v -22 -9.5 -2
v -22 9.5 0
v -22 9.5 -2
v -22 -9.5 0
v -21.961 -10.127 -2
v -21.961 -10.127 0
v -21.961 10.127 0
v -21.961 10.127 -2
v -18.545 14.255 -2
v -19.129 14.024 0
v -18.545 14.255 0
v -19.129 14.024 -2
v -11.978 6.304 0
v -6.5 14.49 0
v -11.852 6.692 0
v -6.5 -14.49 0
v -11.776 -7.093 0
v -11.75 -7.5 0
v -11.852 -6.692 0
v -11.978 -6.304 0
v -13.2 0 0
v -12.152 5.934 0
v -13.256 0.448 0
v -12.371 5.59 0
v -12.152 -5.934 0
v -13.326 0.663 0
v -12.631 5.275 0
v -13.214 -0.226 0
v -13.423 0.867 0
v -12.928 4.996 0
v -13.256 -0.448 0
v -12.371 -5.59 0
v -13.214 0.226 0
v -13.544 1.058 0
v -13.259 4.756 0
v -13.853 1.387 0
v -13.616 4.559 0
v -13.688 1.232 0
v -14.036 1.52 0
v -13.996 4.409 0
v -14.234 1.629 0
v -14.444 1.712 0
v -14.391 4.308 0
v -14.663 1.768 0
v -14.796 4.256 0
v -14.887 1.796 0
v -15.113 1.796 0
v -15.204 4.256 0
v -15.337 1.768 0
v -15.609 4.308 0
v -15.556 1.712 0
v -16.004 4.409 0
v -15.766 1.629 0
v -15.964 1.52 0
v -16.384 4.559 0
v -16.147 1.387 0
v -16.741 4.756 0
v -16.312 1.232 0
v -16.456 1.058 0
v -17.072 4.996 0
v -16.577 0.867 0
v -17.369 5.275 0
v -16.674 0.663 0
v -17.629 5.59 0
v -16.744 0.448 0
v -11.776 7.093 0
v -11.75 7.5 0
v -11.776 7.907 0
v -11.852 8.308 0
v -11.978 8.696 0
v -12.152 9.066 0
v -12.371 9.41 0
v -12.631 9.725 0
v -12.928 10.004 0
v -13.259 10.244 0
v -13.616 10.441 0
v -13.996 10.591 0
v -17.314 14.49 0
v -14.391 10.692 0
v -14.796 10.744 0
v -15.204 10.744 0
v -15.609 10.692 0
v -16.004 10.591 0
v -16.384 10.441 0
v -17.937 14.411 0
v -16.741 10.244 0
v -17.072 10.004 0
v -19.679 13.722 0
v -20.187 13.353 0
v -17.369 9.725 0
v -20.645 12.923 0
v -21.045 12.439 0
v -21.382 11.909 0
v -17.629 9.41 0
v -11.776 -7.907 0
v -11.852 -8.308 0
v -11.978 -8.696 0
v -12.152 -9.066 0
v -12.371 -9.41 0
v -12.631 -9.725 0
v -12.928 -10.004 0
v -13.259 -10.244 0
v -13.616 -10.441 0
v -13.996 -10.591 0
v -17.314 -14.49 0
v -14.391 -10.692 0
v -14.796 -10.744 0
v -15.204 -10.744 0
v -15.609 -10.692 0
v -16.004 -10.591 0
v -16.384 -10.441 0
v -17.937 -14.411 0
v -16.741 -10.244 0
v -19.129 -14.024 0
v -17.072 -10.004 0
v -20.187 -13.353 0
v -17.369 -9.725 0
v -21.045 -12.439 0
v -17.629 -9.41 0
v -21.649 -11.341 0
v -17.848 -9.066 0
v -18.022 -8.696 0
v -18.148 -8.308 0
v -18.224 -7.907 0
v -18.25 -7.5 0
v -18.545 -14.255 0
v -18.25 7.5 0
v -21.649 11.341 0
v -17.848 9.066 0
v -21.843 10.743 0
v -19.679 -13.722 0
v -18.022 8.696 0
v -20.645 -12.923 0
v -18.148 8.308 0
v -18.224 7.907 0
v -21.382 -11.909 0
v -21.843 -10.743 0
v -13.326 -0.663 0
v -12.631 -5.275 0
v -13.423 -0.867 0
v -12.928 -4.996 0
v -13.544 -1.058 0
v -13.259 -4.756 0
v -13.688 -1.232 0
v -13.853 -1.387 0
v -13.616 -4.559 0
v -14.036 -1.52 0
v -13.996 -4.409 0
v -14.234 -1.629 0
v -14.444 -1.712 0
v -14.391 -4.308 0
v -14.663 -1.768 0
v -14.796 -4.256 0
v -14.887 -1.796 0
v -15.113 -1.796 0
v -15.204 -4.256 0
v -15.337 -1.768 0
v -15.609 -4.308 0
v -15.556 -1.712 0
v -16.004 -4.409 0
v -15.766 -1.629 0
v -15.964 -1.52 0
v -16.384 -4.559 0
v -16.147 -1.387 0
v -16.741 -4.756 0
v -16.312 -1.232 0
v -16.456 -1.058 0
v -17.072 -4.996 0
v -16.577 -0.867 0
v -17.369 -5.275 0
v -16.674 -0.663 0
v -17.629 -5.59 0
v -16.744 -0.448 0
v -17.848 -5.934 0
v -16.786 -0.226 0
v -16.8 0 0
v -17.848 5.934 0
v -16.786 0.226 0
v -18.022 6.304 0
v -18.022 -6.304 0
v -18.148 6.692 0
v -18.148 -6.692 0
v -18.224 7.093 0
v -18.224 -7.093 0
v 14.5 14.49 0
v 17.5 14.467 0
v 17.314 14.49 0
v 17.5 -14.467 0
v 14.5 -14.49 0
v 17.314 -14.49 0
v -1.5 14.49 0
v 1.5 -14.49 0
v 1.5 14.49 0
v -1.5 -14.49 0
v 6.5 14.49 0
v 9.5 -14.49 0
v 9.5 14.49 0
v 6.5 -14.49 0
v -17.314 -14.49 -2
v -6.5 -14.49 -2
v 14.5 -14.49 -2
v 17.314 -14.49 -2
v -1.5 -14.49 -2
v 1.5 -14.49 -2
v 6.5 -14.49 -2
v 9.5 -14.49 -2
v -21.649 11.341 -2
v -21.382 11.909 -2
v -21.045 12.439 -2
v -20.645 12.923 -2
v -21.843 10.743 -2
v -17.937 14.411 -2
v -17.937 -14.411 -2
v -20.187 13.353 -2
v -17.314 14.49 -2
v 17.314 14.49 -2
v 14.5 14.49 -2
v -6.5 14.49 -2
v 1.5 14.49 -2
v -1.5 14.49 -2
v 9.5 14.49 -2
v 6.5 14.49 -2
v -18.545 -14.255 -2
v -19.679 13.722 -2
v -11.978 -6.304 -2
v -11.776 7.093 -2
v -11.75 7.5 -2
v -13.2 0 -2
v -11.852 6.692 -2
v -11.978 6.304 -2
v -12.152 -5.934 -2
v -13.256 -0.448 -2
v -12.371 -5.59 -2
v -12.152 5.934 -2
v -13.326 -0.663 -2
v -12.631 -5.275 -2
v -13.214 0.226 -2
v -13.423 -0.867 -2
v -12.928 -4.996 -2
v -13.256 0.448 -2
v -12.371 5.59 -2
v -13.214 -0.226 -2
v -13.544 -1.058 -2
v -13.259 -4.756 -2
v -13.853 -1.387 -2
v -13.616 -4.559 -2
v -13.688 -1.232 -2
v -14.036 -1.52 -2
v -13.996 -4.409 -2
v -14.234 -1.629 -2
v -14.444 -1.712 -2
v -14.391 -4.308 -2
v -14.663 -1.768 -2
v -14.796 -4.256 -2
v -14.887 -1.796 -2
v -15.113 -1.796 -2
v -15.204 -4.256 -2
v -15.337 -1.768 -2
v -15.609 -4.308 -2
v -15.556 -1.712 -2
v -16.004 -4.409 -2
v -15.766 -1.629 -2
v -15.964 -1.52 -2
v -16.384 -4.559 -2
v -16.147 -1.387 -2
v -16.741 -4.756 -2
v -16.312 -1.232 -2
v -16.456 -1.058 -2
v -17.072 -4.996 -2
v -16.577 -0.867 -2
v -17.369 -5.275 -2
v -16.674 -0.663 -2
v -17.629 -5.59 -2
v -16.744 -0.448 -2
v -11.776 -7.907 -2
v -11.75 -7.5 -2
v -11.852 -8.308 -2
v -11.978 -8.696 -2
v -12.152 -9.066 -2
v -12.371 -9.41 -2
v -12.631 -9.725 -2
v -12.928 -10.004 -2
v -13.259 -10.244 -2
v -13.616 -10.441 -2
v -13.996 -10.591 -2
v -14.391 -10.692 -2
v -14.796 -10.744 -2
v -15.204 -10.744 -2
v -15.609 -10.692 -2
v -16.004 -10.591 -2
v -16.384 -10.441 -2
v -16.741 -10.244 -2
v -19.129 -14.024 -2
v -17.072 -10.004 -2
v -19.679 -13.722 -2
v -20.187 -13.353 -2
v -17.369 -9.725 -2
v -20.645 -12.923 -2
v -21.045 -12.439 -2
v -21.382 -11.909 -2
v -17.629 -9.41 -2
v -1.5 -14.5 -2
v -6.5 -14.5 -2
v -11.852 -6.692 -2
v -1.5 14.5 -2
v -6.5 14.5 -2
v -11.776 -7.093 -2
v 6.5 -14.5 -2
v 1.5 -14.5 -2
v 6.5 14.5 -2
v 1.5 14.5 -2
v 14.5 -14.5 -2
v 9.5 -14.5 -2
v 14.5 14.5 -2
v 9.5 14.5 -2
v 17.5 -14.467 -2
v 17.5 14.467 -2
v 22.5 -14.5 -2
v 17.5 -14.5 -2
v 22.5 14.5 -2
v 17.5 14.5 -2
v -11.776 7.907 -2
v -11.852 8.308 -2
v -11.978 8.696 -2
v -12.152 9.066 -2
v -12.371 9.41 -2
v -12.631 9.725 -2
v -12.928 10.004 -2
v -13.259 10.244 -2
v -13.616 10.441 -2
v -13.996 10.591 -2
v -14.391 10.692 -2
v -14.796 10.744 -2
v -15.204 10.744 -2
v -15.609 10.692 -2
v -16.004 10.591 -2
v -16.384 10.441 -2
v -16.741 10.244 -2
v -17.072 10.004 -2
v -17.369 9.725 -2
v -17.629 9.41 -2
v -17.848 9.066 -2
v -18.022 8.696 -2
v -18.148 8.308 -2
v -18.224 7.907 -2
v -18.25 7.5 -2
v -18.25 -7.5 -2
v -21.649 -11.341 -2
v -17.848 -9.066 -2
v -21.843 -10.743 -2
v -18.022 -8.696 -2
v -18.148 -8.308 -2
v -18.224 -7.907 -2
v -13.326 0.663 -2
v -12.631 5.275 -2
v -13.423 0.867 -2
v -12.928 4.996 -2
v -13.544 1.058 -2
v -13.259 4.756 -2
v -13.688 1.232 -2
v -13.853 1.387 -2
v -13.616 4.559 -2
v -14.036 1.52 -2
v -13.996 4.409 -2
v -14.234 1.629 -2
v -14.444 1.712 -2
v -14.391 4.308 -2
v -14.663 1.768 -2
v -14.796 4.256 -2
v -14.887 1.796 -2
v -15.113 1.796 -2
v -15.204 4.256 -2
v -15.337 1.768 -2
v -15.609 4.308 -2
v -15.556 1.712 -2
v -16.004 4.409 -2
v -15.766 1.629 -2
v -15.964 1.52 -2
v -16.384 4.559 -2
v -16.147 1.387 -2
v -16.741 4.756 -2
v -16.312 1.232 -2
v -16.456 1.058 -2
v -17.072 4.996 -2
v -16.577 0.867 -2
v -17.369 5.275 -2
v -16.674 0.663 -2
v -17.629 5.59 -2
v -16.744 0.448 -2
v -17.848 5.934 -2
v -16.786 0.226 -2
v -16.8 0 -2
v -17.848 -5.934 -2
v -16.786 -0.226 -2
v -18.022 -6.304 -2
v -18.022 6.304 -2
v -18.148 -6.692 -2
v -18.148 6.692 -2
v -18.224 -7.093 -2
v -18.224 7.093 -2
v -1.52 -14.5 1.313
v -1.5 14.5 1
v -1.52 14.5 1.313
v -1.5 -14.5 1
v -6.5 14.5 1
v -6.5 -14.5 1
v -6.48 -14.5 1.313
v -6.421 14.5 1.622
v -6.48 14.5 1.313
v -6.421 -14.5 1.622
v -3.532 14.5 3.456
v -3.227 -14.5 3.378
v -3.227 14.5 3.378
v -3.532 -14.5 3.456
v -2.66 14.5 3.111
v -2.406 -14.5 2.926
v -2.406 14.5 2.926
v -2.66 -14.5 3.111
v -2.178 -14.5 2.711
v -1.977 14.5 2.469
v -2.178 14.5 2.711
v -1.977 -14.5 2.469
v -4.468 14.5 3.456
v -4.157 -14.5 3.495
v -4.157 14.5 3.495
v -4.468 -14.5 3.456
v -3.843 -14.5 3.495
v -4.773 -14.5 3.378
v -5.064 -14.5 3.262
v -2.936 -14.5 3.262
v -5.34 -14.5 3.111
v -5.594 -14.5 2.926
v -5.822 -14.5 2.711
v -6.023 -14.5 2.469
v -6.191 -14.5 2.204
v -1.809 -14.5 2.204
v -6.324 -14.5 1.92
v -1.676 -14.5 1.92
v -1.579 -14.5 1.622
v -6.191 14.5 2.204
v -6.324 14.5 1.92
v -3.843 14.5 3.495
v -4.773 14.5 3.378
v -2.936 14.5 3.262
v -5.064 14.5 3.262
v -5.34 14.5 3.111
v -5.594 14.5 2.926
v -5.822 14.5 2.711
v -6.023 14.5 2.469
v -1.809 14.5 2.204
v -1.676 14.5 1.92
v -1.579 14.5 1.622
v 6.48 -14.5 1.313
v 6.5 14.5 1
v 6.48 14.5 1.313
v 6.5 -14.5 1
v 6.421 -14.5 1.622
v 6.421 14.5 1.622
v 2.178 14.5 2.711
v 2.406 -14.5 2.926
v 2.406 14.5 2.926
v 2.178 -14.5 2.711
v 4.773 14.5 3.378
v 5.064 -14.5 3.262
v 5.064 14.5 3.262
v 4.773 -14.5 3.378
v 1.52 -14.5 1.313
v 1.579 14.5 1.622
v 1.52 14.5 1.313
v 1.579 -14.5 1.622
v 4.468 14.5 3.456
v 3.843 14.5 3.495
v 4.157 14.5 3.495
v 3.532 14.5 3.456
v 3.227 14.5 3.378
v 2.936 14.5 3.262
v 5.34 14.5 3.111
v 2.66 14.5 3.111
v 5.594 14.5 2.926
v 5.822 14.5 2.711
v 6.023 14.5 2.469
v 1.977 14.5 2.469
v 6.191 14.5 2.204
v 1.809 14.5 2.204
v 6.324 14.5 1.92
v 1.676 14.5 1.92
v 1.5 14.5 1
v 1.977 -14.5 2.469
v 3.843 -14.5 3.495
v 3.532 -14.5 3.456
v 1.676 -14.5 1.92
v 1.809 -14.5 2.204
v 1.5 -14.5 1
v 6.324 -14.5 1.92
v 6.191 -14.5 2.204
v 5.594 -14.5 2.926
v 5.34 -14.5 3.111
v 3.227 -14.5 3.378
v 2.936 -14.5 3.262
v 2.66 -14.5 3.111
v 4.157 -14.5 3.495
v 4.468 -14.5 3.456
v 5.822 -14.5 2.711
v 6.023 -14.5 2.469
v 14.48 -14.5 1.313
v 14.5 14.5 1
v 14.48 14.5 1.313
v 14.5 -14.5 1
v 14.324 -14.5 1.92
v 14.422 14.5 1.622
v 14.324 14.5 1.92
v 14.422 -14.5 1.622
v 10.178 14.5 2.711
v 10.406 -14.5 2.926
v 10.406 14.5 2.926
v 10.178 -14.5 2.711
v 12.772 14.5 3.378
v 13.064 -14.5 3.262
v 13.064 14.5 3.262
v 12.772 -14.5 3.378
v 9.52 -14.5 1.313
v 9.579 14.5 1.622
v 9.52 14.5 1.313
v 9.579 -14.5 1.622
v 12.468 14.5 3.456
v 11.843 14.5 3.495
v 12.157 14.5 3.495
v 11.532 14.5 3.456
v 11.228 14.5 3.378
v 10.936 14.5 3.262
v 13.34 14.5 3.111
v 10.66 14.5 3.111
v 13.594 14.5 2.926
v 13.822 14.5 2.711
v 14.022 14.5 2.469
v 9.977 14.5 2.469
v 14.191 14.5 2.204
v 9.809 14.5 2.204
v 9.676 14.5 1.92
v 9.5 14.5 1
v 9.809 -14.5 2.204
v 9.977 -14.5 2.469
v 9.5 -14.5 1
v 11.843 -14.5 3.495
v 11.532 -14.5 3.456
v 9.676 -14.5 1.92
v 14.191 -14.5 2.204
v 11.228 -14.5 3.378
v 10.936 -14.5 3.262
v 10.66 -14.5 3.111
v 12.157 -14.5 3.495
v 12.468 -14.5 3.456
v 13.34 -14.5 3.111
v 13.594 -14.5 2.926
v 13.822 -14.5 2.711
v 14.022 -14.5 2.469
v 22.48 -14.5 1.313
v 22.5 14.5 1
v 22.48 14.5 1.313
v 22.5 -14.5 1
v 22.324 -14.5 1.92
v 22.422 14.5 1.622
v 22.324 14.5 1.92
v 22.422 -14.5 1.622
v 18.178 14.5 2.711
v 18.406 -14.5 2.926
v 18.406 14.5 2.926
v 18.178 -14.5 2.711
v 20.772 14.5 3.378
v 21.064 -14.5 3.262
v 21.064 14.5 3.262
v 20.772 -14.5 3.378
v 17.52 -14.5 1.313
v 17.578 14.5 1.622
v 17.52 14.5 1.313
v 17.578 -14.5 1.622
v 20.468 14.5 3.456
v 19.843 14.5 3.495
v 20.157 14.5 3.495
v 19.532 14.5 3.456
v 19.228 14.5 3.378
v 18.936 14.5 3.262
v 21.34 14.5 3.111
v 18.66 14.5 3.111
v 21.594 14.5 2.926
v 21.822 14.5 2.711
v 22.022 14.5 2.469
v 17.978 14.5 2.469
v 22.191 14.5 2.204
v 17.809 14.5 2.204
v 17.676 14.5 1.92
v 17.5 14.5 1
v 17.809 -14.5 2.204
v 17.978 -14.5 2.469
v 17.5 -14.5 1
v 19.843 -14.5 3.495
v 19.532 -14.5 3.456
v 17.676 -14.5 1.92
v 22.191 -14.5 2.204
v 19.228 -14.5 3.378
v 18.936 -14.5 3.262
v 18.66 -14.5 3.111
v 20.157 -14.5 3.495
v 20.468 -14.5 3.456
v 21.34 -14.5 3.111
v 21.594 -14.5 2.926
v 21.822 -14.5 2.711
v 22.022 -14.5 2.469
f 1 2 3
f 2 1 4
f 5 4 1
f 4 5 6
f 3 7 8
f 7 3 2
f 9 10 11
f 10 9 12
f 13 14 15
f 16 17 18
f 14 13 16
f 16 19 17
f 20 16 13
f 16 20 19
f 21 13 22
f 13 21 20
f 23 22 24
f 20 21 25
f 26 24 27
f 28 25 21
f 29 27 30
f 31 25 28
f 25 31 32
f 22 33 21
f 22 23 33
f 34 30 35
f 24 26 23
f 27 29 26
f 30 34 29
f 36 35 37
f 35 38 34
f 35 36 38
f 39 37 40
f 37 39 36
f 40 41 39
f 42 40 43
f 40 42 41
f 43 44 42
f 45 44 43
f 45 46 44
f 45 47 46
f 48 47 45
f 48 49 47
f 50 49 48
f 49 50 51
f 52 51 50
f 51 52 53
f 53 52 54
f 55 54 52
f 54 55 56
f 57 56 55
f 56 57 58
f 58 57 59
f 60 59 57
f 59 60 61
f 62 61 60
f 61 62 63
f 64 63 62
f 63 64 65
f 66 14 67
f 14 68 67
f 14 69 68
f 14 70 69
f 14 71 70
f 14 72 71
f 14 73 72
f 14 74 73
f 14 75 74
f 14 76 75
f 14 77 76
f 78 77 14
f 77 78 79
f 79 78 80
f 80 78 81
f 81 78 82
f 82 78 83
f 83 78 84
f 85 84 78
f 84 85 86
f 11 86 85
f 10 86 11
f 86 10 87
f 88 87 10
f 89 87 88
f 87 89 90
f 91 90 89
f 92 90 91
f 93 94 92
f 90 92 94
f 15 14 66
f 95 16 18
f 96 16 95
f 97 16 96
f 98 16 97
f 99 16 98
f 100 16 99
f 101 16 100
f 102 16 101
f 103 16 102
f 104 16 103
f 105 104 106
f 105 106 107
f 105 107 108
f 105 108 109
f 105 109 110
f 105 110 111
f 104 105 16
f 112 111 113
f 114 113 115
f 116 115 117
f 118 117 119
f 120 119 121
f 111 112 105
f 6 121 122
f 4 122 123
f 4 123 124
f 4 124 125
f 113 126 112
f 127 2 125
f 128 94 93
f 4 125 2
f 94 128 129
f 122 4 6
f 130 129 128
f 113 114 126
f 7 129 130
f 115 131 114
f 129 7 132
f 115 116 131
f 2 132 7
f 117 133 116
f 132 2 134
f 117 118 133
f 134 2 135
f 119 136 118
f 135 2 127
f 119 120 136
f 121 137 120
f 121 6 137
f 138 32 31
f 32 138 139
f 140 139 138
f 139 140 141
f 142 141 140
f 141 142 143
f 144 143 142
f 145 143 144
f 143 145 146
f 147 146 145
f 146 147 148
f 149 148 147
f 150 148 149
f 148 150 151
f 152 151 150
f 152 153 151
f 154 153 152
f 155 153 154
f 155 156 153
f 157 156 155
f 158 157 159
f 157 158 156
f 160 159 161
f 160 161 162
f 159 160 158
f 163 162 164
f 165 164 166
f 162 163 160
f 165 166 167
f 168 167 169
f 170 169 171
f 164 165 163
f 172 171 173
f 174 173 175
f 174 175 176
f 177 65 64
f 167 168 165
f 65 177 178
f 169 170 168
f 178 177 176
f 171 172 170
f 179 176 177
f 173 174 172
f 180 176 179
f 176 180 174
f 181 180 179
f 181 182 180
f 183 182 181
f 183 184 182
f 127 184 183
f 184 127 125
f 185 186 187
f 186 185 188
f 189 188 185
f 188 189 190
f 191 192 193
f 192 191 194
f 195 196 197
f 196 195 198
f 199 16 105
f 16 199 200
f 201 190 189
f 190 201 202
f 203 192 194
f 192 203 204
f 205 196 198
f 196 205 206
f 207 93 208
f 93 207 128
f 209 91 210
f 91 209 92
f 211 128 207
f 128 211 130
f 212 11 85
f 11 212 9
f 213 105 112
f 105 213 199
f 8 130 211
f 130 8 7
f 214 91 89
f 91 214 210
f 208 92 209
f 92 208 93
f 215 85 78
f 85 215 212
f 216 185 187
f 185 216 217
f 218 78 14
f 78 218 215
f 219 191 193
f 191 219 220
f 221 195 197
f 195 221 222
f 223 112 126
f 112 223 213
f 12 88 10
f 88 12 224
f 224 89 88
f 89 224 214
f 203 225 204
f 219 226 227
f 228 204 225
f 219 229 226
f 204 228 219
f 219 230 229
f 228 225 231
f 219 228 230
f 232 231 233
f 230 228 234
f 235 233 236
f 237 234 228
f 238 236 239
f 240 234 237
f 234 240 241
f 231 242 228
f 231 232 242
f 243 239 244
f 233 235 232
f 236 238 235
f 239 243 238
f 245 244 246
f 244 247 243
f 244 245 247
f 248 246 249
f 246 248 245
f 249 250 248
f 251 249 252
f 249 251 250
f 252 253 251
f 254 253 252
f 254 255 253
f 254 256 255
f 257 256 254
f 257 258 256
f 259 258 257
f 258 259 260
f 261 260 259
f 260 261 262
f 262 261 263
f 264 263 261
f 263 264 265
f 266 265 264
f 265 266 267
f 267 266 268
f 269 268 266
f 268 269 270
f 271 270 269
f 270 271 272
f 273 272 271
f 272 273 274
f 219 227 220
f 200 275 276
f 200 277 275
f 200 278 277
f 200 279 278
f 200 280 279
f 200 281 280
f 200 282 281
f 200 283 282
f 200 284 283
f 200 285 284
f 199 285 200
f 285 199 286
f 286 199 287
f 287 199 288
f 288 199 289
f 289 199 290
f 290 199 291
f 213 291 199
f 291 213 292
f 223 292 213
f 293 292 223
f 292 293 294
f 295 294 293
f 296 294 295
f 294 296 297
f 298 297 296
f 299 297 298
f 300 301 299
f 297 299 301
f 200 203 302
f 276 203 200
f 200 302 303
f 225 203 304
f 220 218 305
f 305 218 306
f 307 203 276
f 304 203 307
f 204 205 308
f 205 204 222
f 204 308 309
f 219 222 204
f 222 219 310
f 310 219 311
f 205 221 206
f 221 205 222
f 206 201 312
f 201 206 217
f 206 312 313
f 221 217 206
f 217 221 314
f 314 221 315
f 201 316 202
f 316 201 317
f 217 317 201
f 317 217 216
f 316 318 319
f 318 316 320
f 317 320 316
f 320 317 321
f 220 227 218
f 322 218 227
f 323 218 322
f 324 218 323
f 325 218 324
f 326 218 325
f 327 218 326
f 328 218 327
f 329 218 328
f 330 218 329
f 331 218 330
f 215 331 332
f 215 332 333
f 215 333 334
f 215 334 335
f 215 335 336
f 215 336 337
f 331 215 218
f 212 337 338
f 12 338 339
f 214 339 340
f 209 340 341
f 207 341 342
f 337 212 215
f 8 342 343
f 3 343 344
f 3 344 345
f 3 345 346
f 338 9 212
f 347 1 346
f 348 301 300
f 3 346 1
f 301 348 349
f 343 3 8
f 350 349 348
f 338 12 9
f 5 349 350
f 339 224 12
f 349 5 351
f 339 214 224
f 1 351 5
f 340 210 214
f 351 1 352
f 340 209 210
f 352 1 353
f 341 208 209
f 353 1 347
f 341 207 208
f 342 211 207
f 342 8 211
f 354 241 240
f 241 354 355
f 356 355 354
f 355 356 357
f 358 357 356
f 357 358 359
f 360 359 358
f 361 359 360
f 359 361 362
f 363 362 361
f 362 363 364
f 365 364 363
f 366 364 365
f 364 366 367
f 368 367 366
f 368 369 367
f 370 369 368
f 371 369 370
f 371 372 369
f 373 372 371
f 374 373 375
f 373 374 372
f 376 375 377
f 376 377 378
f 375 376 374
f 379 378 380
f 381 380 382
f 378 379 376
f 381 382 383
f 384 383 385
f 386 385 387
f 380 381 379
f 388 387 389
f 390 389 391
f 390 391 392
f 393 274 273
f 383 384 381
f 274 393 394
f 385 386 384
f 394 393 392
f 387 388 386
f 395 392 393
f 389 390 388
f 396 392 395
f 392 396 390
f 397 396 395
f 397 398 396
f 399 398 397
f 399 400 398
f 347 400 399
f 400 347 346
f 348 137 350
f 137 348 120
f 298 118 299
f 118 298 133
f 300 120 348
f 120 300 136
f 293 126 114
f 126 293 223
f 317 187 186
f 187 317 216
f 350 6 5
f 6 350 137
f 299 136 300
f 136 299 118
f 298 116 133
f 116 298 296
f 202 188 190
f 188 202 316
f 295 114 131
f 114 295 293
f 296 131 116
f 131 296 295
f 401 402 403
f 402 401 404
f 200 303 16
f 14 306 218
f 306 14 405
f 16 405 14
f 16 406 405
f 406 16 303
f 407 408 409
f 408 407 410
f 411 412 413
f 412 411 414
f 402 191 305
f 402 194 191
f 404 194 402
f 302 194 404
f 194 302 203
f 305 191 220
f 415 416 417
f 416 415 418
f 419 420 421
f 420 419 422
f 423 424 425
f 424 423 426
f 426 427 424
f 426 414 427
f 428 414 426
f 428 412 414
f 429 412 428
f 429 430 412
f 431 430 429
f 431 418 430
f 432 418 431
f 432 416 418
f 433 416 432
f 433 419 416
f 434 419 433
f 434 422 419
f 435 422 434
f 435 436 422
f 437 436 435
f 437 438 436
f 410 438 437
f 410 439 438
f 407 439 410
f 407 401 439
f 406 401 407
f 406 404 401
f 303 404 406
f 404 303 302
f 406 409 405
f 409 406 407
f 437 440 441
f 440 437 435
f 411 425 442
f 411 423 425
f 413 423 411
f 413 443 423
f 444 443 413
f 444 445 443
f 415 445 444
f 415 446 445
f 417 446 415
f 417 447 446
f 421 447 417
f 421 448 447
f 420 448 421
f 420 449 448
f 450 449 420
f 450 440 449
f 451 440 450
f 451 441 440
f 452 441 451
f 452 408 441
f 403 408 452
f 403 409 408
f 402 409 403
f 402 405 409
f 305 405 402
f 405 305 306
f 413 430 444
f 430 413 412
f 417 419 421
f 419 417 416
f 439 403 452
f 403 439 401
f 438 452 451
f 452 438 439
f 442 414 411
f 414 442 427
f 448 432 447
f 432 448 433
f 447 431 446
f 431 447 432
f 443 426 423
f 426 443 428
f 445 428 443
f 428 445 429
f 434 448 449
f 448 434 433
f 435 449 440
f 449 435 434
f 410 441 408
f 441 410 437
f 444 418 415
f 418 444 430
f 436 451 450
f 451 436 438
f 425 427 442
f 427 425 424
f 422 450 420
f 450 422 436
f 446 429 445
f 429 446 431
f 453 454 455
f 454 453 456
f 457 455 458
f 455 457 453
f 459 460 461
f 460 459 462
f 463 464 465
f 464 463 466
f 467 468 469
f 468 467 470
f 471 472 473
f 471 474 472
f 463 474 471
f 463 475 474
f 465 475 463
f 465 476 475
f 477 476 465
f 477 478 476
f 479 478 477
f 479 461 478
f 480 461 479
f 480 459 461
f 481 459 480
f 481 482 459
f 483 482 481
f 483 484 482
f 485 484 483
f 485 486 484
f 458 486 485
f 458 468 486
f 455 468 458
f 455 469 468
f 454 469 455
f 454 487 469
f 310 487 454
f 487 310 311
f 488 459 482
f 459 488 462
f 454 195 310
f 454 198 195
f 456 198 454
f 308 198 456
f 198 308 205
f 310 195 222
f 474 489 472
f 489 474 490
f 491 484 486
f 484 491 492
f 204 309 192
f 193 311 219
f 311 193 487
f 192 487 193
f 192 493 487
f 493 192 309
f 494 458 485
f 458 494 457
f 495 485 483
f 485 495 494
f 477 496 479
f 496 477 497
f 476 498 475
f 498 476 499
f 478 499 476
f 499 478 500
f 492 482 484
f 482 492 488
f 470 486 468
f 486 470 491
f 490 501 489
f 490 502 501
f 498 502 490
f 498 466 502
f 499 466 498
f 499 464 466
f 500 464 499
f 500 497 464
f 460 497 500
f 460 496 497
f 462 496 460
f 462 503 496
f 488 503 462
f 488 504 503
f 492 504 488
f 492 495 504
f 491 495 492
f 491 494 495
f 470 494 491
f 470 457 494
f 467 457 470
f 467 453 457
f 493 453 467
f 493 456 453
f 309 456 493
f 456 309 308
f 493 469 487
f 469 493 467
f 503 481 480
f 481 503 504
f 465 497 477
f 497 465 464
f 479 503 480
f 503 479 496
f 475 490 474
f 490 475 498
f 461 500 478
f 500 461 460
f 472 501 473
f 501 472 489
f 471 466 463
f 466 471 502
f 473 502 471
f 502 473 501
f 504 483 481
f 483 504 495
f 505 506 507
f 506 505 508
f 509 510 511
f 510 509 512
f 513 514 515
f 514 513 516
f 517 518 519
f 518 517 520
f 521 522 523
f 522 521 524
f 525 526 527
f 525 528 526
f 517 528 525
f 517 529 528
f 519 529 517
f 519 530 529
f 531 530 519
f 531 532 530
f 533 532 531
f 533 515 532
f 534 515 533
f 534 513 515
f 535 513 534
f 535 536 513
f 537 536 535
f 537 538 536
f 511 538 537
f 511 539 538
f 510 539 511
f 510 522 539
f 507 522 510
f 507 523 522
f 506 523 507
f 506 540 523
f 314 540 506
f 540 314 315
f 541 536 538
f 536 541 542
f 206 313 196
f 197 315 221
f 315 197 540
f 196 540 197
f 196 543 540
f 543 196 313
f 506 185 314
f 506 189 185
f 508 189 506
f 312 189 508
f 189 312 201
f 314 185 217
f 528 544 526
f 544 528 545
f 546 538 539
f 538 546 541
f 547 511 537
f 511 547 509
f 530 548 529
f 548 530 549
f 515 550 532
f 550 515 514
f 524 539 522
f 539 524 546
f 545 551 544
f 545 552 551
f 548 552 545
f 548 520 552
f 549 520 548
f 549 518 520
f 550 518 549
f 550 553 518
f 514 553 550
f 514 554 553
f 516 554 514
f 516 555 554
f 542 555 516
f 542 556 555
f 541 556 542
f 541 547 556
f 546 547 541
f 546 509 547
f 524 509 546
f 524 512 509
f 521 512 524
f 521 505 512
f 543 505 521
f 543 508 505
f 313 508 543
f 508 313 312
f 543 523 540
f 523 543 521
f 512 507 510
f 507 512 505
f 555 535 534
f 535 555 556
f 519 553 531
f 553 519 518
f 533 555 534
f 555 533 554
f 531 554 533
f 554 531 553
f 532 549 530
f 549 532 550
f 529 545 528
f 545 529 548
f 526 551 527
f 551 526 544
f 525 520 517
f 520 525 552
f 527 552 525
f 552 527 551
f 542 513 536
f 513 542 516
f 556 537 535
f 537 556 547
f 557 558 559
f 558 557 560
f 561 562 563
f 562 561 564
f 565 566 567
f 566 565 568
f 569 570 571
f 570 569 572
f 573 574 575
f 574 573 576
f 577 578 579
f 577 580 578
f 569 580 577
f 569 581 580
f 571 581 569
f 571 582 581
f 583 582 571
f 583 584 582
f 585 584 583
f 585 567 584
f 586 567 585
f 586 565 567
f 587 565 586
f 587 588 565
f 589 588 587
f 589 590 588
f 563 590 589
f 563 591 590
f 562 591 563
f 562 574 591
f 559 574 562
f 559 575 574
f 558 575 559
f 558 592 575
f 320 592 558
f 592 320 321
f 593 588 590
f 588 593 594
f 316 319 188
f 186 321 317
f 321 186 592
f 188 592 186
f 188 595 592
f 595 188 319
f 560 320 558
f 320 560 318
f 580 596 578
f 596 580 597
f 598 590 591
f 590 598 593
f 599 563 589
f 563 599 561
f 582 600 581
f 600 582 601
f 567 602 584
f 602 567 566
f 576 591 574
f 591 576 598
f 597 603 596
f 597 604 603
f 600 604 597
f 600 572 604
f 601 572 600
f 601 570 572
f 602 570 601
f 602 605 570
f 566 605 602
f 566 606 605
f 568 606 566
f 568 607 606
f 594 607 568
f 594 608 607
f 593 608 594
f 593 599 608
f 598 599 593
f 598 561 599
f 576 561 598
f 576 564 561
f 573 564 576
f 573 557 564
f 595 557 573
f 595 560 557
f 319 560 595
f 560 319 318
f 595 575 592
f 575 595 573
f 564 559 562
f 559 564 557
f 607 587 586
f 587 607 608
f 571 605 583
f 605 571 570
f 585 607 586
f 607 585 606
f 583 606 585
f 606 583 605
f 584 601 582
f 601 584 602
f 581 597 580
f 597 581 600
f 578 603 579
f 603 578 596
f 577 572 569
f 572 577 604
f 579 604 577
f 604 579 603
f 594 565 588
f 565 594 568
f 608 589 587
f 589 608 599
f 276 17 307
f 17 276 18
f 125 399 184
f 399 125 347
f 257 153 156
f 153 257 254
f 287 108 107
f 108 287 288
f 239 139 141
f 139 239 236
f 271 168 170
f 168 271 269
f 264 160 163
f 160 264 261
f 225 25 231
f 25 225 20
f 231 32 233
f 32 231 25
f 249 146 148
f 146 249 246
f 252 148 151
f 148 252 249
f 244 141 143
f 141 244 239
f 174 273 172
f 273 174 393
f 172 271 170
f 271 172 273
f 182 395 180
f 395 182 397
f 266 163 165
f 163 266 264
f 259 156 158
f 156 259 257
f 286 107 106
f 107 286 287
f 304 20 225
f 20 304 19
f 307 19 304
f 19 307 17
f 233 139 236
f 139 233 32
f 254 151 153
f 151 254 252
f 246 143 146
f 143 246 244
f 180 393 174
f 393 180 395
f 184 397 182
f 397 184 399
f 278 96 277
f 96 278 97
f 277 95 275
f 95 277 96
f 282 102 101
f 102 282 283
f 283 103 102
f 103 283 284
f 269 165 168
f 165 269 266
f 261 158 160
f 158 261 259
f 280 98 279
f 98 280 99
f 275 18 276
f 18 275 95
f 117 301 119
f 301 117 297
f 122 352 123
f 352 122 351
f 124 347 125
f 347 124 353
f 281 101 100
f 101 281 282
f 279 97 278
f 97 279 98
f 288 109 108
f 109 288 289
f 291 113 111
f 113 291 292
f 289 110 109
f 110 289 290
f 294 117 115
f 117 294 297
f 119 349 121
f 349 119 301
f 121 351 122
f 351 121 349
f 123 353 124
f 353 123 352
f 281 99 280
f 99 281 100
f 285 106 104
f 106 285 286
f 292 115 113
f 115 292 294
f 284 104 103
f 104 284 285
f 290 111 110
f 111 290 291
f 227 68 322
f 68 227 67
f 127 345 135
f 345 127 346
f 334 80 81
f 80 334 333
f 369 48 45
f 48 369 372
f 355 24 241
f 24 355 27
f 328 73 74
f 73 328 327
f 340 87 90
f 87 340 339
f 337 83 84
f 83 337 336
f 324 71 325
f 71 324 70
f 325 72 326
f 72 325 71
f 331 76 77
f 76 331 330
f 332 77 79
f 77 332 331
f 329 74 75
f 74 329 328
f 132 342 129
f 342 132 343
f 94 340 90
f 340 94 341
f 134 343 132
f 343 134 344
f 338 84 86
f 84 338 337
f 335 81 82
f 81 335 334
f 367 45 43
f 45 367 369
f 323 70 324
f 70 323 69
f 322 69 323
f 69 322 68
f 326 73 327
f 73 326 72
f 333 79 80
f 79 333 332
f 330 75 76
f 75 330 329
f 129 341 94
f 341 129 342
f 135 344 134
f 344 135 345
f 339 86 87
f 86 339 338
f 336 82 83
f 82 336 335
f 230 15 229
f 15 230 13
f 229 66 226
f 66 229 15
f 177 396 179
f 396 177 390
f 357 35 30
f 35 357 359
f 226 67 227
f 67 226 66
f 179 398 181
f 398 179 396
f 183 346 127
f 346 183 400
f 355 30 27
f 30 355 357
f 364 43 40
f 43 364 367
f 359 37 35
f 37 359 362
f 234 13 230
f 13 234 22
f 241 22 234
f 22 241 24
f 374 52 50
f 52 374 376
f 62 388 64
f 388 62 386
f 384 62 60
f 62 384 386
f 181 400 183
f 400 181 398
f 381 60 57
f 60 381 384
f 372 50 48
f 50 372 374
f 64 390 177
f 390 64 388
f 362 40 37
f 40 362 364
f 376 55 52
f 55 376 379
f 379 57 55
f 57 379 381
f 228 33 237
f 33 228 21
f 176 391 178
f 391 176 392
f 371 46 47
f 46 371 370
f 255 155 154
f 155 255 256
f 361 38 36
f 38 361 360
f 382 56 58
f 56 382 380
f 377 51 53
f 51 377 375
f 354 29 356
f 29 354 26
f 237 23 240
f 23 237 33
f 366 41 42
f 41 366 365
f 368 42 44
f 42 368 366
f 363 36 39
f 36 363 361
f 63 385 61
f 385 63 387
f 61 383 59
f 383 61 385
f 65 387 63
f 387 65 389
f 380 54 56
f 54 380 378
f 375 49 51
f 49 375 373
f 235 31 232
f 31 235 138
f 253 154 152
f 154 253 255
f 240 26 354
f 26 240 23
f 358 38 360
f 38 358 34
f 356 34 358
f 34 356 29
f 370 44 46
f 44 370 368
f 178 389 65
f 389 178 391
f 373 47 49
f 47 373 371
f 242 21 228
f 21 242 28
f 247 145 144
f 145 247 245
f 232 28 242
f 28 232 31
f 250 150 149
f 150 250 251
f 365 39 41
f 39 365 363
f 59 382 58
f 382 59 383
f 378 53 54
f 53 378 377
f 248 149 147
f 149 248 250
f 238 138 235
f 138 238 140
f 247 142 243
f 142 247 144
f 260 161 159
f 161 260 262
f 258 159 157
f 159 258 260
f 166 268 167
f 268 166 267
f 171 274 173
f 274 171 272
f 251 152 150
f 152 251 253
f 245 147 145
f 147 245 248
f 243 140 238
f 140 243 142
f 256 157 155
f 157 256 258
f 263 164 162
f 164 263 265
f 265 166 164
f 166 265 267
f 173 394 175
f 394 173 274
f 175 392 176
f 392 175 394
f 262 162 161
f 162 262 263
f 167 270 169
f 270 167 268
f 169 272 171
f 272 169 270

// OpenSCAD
$fn = 50;


difference() {
	union() {
		translate(v = [0, 0, -2]) {
			hull() {
				translate(v = [-17.0000000000, 9.5000000000, 0]) {
					cylinder(h = 2, r = 5);
				}
				translate(v = [17.0000000000, 9.5000000000, 0]) {
					cylinder(h = 2, r = 5);
				}
				translate(v = [-17.0000000000, -9.5000000000, 0]) {
					cylinder(h = 2, r = 5);
				}
				translate(v = [17.0000000000, -9.5000000000, 0]) {
					cylinder(h = 2, r = 5);
				}
			}
		}
		translate(v = [-4.0000000000, 14.5000000000, -1.5000000000]) {
			rotate(a = [90, 0, 0]) {
				hull() {
					translate(v = [-0.0000000000, 2.5000000000, 0]) {
						cylinder(h = 29, r = 2.5000000000);
					}
					translate(v = [0.0000000000, 2.5000000000, 0]) {
						cylinder(h = 29, r = 2.5000000000);
					}
					translate(v = [-0.0000000000, -2.5000000000, 0]) {
						cylinder(h = 29, r = 2.5000000000);
					}
					translate(v = [0.0000000000, -2.5000000000, 0]) {
						cylinder(h = 29, r = 2.5000000000);
					}
				}
			}
		}
		translate(v = [4.0000000000, 14.5000000000, -1.5000000000]) {
			rotate(a = [90, 0, 0]) {
				hull() {
					translate(v = [-0.0000000000, 2.5000000000, 0]) {
						cylinder(h = 29, r = 2.5000000000);
					}
					translate(v = [0.0000000000, 2.5000000000, 0]) {
						cylinder(h = 29, r = 2.5000000000);
					}
					translate(v = [-0.0000000000, -2.5000000000, 0]) {
						cylinder(h = 29, r = 2.5000000000);
					}
					translate(v = [0.0000000000, -2.5000000000, 0]) {
						cylinder(h = 29, r = 2.5000000000);
					}
				}
			}
		}
		translate(v = [12.0000000000, 14.5000000000, -1.5000000000]) {
			rotate(a = [90, 0, 0]) {
				hull() {
					translate(v = [-0.0000000000, 2.5000000000, 0]) {
						cylinder(h = 29, r = 2.5000000000);
					}
					translate(v = [0.0000000000, 2.5000000000, 0]) {
						cylinder(h = 29, r = 2.5000000000);
					}
					translate(v = [-0.0000000000, -2.5000000000, 0]) {
						cylinder(h = 29, r = 2.5000000000);
					}
					translate(v = [0.0000000000, -2.5000000000, 0]) {
						cylinder(h = 29, r = 2.5000000000);
					}
				}
			}
		}
		translate(v = [20.0000000000, 14.5000000000, -1.5000000000]) {
			rotate(a = [90, 0, 0]) {
				hull() {
					translate(v = [-0.0000000000, 2.5000000000, 0]) {
						cylinder(h = 29, r = 2.5000000000);
					}
					translate(v = [0.0000000000, 2.5000000000, 0]) {
						cylinder(h = 29, r = 2.5000000000);
					}
					translate(v = [-0.0000000000, -2.5000000000, 0]) {
						cylinder(h = 29, r = 2.5000000000);
					}
					translate(v = [0.0000000000, -2.5000000000, 0]) {
						cylinder(h = 29, r = 2.5000000000);
					}
				}
			}
		}
	}
	union() {
		translate(v = [-250.0000000000, -250.0000000000, -502]) {
			cube(size = [500, 500, 500]);
		}
		translate(v = [-250.0000000000, -250.0000000000, -502]) {
			cube(size = [500, 500, 500]);
		}
		translate(v = [-250.0000000000, -250.0000000000, -502]) {
			cube(size = [500, 500, 500]);
		}
		translate(v = [-15.0000000000, -7.5000000000, -100.0000000000]) {
			cylinder(h = 200, r = 3.2500000000);
		}
		translate(v = [-15.0000000000, 7.5000000000, -100.0000000000]) {
			cylinder(h = 200, r = 3.2500000000);
		}
		translate(v = [-15.0000000000, -7.5000000000, -100.0000000000]) {
			cylinder(h = 200, r = 1.8000000000);
		}
		translate(v = [-15.0000000000, 0.0000000000, -100.0000000000]) {
			cylinder(h = 200, r = 1.8000000000);
		}
		translate(v = [-15.0000000000, 7.5000000000, -100.0000000000]) {
			cylinder(h = 200, r = 1.8000000000);
		}
		translate(v = [-15.0000000000, -7.5000000000, -100.0000000000]) {
			cylinder(h = 200, r = 1.8000000000);
		}
		translate(v = [-15.0000000000, 0.0000000000, -100.0000000000]) {
			cylinder(h = 200, r = 1.8000000000);
		}
		translate(v = [-15.0000000000, 7.5000000000, -100.0000000000]) {
			cylinder(h = 200, r = 1.8000000000);
		}
		translate(v = [-15.0000000000, -7.5000000000, -100.0000000000]) {
			cylinder(h = 200, r = 1.8000000000);
		}
		translate(v = [-15.0000000000, 0.0000000000, -100.0000000000]) {
			cylinder(h = 200, r = 1.8000000000);
		}
		translate(v = [-15.0000000000, 7.5000000000, -100.0000000000]) {
			cylinder(h = 200, r = 1.8000000000);
		}
	}
}
